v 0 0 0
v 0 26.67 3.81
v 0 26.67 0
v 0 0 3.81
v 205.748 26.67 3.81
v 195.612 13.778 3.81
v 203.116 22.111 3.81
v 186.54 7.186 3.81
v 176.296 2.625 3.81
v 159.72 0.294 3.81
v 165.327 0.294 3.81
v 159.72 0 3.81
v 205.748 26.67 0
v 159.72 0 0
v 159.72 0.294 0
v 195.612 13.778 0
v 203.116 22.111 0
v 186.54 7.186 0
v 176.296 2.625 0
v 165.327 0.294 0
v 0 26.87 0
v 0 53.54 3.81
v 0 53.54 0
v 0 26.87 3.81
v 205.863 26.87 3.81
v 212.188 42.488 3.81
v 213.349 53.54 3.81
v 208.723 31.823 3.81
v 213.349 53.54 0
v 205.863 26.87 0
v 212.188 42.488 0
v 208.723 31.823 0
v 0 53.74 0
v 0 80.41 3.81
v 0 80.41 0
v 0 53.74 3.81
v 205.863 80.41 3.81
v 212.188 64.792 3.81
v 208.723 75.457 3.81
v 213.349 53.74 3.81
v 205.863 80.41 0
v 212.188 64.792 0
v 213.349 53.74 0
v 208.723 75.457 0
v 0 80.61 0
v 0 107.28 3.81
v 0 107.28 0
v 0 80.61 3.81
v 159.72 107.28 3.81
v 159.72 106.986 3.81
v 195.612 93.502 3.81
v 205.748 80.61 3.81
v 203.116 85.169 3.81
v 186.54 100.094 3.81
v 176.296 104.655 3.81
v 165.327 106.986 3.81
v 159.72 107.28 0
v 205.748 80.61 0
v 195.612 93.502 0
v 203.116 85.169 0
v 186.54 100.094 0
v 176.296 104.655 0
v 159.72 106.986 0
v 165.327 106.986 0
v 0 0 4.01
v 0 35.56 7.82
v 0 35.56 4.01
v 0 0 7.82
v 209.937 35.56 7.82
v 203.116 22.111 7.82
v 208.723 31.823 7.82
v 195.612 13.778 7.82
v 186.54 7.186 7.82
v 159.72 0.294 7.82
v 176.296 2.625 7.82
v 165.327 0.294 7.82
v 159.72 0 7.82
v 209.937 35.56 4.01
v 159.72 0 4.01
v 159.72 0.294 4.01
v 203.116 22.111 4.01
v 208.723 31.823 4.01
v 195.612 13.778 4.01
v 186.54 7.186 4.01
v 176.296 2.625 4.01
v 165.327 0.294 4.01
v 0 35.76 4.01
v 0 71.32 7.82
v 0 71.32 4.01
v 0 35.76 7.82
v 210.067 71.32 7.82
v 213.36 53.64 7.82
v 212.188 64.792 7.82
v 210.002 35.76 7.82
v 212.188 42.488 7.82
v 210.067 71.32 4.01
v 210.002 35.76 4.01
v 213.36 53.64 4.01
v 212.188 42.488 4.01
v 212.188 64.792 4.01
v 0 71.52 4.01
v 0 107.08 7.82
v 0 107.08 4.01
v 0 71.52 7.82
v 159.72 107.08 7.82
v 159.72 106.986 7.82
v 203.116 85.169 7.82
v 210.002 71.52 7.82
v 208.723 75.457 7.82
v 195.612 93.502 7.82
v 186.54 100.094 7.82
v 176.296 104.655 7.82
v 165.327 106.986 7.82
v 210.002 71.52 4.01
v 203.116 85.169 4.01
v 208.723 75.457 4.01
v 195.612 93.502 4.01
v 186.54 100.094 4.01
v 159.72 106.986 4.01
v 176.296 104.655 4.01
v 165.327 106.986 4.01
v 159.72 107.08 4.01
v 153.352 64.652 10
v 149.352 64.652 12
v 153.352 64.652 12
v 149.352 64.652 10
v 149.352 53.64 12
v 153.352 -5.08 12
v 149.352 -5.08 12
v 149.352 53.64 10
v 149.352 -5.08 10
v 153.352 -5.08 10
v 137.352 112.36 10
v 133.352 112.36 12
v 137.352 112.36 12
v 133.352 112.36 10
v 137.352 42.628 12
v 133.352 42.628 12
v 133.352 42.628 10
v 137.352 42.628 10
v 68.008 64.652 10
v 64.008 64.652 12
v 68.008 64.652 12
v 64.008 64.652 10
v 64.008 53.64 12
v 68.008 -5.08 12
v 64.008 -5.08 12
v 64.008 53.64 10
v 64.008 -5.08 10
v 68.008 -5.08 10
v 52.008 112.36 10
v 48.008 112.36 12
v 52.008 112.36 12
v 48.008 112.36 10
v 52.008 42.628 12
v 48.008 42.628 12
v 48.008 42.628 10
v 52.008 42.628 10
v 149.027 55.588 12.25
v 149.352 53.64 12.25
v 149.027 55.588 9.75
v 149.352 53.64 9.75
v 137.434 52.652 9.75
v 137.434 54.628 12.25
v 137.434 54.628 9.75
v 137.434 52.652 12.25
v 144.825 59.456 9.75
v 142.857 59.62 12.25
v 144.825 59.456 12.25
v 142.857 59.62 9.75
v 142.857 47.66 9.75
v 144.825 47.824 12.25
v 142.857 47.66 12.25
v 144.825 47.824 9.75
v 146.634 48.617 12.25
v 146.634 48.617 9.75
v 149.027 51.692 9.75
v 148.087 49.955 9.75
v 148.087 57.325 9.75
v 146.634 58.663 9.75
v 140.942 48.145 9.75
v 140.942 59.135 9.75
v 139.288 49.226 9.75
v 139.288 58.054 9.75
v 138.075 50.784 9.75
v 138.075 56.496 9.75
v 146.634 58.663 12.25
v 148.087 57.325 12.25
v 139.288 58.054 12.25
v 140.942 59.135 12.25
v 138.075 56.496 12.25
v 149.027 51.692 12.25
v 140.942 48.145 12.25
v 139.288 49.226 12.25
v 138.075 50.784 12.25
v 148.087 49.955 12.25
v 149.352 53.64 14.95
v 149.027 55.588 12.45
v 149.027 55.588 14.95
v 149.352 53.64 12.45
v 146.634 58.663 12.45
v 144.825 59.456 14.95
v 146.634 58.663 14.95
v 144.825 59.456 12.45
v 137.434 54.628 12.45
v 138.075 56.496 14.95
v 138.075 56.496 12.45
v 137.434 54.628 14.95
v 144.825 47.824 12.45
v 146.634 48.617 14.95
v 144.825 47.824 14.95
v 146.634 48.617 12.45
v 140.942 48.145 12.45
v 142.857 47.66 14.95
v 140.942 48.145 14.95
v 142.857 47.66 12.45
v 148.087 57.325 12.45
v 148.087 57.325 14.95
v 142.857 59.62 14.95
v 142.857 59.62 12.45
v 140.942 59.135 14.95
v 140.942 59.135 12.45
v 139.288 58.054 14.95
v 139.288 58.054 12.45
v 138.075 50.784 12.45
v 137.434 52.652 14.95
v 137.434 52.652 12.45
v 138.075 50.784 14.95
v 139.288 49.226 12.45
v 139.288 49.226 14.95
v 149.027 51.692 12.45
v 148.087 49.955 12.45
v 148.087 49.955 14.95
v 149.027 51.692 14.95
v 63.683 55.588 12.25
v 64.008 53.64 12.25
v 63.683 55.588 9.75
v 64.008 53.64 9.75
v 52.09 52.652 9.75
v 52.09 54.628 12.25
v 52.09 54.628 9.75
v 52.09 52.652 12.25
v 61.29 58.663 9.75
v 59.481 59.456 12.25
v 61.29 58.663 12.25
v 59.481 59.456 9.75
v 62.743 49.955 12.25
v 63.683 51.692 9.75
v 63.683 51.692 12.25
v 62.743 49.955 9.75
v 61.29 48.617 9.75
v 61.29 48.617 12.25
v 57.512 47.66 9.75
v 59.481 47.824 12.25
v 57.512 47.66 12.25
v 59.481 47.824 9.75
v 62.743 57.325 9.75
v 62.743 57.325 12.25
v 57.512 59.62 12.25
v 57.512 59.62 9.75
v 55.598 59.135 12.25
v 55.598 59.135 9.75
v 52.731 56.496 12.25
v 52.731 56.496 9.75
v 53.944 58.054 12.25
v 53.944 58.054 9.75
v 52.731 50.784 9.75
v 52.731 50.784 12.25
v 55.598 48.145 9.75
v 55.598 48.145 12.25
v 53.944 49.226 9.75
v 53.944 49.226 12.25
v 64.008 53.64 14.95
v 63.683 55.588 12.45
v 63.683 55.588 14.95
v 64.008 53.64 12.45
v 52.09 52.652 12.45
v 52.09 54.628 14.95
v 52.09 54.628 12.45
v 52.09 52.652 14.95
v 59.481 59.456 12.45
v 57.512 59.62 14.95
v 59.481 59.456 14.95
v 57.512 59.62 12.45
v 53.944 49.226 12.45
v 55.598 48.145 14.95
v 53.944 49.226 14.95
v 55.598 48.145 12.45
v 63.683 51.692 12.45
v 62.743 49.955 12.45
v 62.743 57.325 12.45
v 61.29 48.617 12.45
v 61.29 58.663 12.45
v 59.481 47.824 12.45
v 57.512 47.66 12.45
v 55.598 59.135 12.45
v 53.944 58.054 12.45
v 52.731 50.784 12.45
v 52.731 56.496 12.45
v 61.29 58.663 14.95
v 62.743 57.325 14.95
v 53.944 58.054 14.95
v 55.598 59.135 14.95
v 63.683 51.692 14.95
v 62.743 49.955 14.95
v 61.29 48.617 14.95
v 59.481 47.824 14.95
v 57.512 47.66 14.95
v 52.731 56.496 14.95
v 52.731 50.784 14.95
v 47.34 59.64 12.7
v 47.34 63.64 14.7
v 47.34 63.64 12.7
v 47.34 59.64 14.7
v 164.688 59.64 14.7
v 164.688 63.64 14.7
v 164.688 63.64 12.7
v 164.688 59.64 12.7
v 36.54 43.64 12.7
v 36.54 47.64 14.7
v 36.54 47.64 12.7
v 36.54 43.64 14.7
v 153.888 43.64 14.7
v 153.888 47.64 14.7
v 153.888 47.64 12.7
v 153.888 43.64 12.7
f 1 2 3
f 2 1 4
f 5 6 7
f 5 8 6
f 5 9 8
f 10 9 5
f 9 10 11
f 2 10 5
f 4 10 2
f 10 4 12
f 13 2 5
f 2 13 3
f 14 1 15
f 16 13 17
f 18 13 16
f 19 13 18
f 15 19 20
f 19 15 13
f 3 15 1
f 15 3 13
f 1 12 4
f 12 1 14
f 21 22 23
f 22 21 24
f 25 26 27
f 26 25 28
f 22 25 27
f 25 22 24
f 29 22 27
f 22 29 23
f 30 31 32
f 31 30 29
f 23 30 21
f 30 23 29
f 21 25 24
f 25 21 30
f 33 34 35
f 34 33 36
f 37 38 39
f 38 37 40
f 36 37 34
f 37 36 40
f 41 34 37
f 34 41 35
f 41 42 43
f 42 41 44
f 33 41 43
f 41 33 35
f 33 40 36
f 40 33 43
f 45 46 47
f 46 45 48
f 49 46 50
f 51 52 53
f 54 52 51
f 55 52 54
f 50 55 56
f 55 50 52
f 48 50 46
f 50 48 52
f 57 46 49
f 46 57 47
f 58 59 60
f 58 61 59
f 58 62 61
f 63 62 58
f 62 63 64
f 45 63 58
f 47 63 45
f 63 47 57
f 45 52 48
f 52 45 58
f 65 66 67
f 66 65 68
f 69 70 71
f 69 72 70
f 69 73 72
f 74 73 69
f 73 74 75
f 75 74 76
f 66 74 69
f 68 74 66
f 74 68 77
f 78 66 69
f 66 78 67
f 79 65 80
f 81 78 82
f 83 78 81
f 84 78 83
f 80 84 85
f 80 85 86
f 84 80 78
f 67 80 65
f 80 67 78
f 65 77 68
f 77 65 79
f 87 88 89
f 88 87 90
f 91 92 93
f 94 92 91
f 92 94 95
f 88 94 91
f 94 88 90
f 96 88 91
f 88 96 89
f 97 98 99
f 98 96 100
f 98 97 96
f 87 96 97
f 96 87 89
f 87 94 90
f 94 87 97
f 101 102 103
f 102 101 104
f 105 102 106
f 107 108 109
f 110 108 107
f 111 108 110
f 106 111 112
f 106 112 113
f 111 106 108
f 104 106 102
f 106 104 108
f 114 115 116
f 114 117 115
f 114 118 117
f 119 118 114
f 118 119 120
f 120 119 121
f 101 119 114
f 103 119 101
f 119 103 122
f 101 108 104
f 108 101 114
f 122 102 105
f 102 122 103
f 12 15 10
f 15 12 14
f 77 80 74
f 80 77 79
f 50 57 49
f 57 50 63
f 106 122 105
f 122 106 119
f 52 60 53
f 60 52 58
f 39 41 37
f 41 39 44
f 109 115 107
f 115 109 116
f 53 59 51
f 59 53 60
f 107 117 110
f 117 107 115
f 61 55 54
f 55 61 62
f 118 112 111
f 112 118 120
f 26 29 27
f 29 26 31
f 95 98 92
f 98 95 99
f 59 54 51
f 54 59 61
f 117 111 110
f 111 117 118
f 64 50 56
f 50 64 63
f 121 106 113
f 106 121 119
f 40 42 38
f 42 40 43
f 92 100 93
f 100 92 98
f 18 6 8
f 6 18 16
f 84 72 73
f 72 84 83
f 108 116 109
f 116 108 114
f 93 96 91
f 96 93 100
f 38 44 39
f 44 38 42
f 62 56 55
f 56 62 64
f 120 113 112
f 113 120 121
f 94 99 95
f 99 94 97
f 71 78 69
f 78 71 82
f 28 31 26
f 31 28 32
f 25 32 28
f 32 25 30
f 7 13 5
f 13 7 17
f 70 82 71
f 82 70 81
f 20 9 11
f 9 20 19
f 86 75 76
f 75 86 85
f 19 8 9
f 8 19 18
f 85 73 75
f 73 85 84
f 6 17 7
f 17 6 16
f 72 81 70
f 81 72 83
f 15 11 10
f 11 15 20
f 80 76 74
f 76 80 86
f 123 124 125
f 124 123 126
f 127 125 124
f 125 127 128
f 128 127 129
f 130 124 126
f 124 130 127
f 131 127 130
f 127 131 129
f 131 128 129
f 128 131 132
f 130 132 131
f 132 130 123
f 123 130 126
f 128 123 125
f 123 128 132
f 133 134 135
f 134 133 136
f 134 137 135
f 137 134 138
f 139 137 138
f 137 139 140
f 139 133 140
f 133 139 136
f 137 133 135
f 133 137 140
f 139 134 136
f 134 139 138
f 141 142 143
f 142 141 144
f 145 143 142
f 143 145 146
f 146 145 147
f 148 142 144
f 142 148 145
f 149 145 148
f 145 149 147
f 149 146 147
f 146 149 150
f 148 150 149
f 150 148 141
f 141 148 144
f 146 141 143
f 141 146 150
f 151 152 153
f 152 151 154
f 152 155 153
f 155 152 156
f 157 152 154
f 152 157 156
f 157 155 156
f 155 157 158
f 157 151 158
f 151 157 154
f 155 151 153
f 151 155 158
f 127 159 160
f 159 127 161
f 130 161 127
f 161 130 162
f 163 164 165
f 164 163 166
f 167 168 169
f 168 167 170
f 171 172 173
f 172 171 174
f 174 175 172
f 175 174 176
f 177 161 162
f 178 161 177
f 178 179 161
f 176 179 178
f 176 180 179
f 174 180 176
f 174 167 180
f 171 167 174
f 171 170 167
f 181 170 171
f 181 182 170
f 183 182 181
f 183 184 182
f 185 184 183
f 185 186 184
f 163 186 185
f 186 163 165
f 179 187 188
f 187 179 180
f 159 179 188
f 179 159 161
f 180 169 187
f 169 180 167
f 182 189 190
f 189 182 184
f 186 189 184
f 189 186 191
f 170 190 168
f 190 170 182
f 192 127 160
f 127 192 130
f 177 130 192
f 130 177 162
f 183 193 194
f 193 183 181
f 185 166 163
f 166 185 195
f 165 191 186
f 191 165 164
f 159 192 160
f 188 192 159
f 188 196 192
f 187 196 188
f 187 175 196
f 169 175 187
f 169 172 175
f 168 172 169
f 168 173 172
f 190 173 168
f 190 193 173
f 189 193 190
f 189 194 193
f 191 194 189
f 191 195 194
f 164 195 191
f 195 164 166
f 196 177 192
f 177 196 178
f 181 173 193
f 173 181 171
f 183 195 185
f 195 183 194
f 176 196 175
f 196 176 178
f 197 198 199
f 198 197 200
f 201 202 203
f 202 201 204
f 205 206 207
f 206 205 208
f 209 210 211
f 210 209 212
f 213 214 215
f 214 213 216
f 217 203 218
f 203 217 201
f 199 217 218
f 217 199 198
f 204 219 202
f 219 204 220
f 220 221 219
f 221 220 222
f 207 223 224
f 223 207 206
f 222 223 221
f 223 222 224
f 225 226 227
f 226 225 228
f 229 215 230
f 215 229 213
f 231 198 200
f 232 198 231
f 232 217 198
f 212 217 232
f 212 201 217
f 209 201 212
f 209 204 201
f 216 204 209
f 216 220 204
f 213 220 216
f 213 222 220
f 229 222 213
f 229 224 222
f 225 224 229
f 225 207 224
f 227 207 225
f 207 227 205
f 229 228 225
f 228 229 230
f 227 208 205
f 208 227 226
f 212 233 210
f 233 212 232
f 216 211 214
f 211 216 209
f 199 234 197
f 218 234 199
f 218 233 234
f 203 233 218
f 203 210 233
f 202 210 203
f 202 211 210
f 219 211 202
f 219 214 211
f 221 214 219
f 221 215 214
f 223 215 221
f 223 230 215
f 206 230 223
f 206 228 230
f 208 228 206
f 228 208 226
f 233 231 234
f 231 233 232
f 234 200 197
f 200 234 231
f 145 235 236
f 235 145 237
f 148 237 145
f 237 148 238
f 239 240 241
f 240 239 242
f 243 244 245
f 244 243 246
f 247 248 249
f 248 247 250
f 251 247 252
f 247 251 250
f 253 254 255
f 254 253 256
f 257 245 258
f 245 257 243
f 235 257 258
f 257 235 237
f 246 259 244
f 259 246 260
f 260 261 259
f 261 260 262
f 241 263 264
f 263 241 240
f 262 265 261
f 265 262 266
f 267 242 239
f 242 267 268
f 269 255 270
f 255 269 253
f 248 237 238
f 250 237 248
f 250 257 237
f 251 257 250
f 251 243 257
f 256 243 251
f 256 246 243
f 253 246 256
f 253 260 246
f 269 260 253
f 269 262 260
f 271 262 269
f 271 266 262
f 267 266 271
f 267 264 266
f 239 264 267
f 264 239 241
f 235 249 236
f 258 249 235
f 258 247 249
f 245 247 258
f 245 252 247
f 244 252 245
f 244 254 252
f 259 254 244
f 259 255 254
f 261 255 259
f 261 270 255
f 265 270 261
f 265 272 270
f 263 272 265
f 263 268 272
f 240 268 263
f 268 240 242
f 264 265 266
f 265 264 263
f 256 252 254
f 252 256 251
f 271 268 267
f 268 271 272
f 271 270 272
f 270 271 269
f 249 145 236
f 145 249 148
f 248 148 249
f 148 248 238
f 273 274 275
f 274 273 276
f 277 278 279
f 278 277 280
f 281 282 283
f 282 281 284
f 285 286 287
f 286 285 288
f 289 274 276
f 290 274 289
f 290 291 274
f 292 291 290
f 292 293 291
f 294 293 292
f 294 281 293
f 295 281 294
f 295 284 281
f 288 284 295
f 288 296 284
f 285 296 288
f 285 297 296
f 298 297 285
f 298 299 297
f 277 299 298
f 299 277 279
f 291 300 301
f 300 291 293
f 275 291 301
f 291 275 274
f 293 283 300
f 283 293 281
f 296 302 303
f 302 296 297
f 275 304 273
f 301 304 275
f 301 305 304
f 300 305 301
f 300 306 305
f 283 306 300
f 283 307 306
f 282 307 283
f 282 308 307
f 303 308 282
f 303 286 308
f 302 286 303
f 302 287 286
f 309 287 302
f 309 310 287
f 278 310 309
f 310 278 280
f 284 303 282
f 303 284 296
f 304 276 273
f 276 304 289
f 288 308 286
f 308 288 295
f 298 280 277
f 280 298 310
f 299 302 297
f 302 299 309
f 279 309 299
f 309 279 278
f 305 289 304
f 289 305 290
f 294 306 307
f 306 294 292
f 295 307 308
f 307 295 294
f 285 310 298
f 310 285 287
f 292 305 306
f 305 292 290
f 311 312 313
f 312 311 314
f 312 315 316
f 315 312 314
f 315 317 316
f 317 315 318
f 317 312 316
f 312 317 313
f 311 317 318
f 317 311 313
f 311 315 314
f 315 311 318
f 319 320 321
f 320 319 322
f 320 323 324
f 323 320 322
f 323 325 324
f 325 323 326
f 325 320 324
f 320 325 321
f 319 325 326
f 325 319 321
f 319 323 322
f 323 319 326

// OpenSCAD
// file: common/board.scad
// board.scad

BOARD_DEFAULT_LENGTH = 600;
BOARD_DEFAULT_WIDTH = 120;
BOARD_DEFAULT_THICKNESS = 120;

function board_get_default_size()
    = [BOARD_DEFAULT_LENGTH, BOARD_DEFAULT_WIDTH, BOARD_DEFAULT_THICKNESS];

module board(size = board_get_default_size(), center = false)
{
    // size[0] is always with the grain
    // size[1] is against the grain
    // size[2] is the board thickness
    cube(size = size, center = center);
}
// main file
// door.scad
// units: centimeter
// TODO:
// - separate into files/parts

use <common/board.scad>

// door size
// 7' x 3.5' x ? ft
// 84" x 42" x ? in
// 213.36 x 106.68 x ? cm

// 4 x 10.5" == 42"
// 4 x 26.67 == 106.68 cm

// 3 x 14" == 42"
// 3 x 35.56 == 106.68 cm

DOOR_HEIGHT = 213.36;
DOOR_WIDTH = 106.68;
LOCK_ENGAGED_DIST = 5.08;
VISUAL_SEP_DIST = 0.2;
BAR_THICKNESS = 1.27;

HORIZ_LOCK_GEAR_RADIUS = 6;

OUTSIDE_BOARD_COUNT = 4;
OUTSIDE_BOARD_LENGTH = DOOR_HEIGHT;
OUTSIDE_BOARD_WIDTH = 26.67;
OUTSIDE_BOARD_THICKNESS = 3.81;

INSIDE_BOARD_COUNT = 3;
INSIDE_BOARD_LENGTH = DOOR_HEIGHT;
INSIDE_BOARD_WIDTH = 35.56;
INSIDE_BOARD_THICKNESS = 3.81;

TOTAL_LENGTH = DOOR_HEIGHT;
TOTAL_WIDTH =
        DOOR_WIDTH
        + (3 * VISUAL_SEP_DIST);
TOTAL_BOARD_THICKNESS =
        OUTSIDE_BOARD_THICKNESS
        + VISUAL_SEP_DIST
        + INSIDE_BOARD_THICKNESS;

HORIZ_LOCK_BAR_LENGTH = TOTAL_WIDTH * 0.65;
HORIZ_LOCK_BAR_WIDTH = 4;
HORIZ_LOCK_BAR_THICKNESS = 2;

VERT_LOCK_BAR_LENGTH = TOTAL_LENGTH * 0.55;
VERT_LOCK_BAR_WIDTH = 4;
VERT_LOCK_BAR_THICKNESS = 2;

module outside_board()
{
    board_size = [
            OUTSIDE_BOARD_LENGTH,
            OUTSIDE_BOARD_WIDTH,
            OUTSIDE_BOARD_THICKNESS];

    board(board_size);
}

module inside_board()
{
    board_size = [
            INSIDE_BOARD_LENGTH,
            INSIDE_BOARD_WIDTH,
            INSIDE_BOARD_THICKNESS];

    board(board_size);
}

module outside_board_assembly()
{
    for(b = [0 : OUTSIDE_BOARD_COUNT - 1])
    {
        w = OUTSIDE_BOARD_WIDTH + VISUAL_SEP_DIST;
        offset_y = b * w;

        translate([0, offset_y, 0])
            outside_board();
    }
}

module inside_board_assembly()
{
    z0 =
            INSIDE_BOARD_THICKNESS
            - BAR_THICKNESS;

    for(b = [0 : INSIDE_BOARD_COUNT - 1])
    {
        w = INSIDE_BOARD_WIDTH + VISUAL_SEP_DIST;
        offset_y = b * w;

        translate([0, offset_y, 0])
            inside_board();
    }
}

module square_door()
{
    color("SaddleBrown")
        outside_board_assembly();

    z0 = OUTSIDE_BOARD_THICKNESS + VISUAL_SEP_DIST;

    color("Sienna")
        translate([0, 0, z0])
            inside_board_assembly();
}

module test_template(r)
{
    template_size = [
            TOTAL_LENGTH / 3,
            TOTAL_WIDTH + (TOTAL_WIDTH / 4),
            4 * TOTAL_BOARD_THICKNESS];

    template_offset = [
            0,
            -template_size[1] / 2,
            -template_size[2] / 2];

    difference()
    {
        translate(template_offset)
            cube(template_size);

        cylinder(
                h = template_size[2],
                r1 = r,
                r2 = r,
                center = true);
    }
}

module door()
{
    r = TOTAL_WIDTH / 2;

    offset_t = [
            TOTAL_LENGTH - r,
            TOTAL_WIDTH / 2,
            0];

    difference()
    {
        square_door();

        color("SaddleBrown")
            translate(offset_t)
                test_template(r);
    }
}

module horiz_bar()
{
    bar_size = [
            HORIZ_LOCK_BAR_LENGTH,
            HORIZ_LOCK_BAR_WIDTH,
            HORIZ_LOCK_BAR_THICKNESS];

    translate([bar_size[1], 0, 0])
        rotate([0, 0, 90])
            cube(bar_size);
}

module vert_bar()
{
    bar_size = [
            VERT_LOCK_BAR_LENGTH,
            VERT_LOCK_BAR_WIDTH,
            VERT_LOCK_BAR_THICKNESS];

            cube(bar_size);
}

module horiz_lock_bars()
{
    offset_b0 = [
            TOTAL_LENGTH * 0.70,
            -LOCK_ENGAGED_DIST,
            0];

    offset_b1 = [
            (TOTAL_LENGTH * 0.70)
                    - (2 * HORIZ_LOCK_GEAR_RADIUS)
                    - HORIZ_LOCK_BAR_WIDTH,
            TOTAL_WIDTH
                    - HORIZ_LOCK_BAR_LENGTH
                    + LOCK_ENGAGED_DIST,
            0];
    
    offset_b2 = [
            (TOTAL_LENGTH * 0.30),
            -LOCK_ENGAGED_DIST,
            0];
            
    offset_b3 = [
            (TOTAL_LENGTH * 0.30)
                    - (2 * HORIZ_LOCK_GEAR_RADIUS)
                    - HORIZ_LOCK_BAR_WIDTH,
            TOTAL_WIDTH
                    - HORIZ_LOCK_BAR_LENGTH
                    + LOCK_ENGAGED_DIST,
            0];

    translate(offset_b0)
        horiz_bar(size_ba);

    translate(offset_b1)
        horiz_bar(size_ba);
        
    translate(offset_b2)
        horiz_bar(size_ba);
        
    translate(offset_b3)
        horiz_bar(size_ba);
}

module vert_lock_bars()
{
    offset_b0 = [
            (TOTAL_LENGTH / 4)
                    - HORIZ_LOCK_GEAR_RADIUS,
            (TOTAL_WIDTH / 2)
                    + HORIZ_LOCK_GEAR_RADIUS,
            HORIZ_LOCK_BAR_THICKNESS
                    + VISUAL_SEP_DIST
                    + (HORIZ_LOCK_BAR_THICKNESS / 4)];
    
    offset_b1 = [
            (TOTAL_LENGTH / 4)
                    - (2.8 * HORIZ_LOCK_GEAR_RADIUS),
            (TOTAL_WIDTH / 2)
                    - HORIZ_LOCK_GEAR_RADIUS
                    - VERT_LOCK_BAR_WIDTH,
            HORIZ_LOCK_BAR_THICKNESS
                    + VISUAL_SEP_DIST
                    + (HORIZ_LOCK_BAR_THICKNESS / 4)];
    
    translate(offset_b0)
        vert_bar();
    
    translate(offset_b1)
        vert_bar();
}

module horiz_lock_gears()
{
    offset_g01a = [
            (TOTAL_LENGTH * 0.70)
                    - HORIZ_LOCK_GEAR_RADIUS,
            TOTAL_WIDTH / 2,
            -HORIZ_LOCK_BAR_THICKNESS / 8];
    
    offset_g01b = [
            (TOTAL_LENGTH * 0.70)
                    - HORIZ_LOCK_GEAR_RADIUS,
            TOTAL_WIDTH / 2,
            (-HORIZ_LOCK_BAR_THICKNESS / 8)
                    + (HORIZ_LOCK_BAR_THICKNESS / 4)
                    + VISUAL_SEP_DIST
                    + HORIZ_LOCK_BAR_THICKNESS];
            
    offset_g23a = [
            (TOTAL_LENGTH * 0.30)
                    - HORIZ_LOCK_GEAR_RADIUS,
            TOTAL_WIDTH / 2,
            -HORIZ_LOCK_BAR_THICKNESS / 8];
    
    offset_g23b = [
            (TOTAL_LENGTH * 0.30)
                    - HORIZ_LOCK_GEAR_RADIUS,
            TOTAL_WIDTH / 2,
            (-HORIZ_LOCK_BAR_THICKNESS / 8)
                    + (HORIZ_LOCK_BAR_THICKNESS / 4)
                    + VISUAL_SEP_DIST
                    + HORIZ_LOCK_BAR_THICKNESS];

    translate(offset_g01a)
        cylinder(
                h = HORIZ_LOCK_BAR_THICKNESS
                        + (HORIZ_LOCK_BAR_THICKNESS / 4),
                r1 = HORIZ_LOCK_GEAR_RADIUS,
                r2 = HORIZ_LOCK_GEAR_RADIUS,
                center = false);
    
    translate(offset_g01b)
        cylinder(
                h = HORIZ_LOCK_BAR_THICKNESS
                        + (HORIZ_LOCK_BAR_THICKNESS / 4),
                r1 = HORIZ_LOCK_GEAR_RADIUS,
                r2 = HORIZ_LOCK_GEAR_RADIUS,
                center = false);
                
    translate(offset_g23a)
        cylinder(
                h = HORIZ_LOCK_BAR_THICKNESS
                        + (HORIZ_LOCK_BAR_THICKNESS / 4),
                r1 = HORIZ_LOCK_GEAR_RADIUS,
                r2 = HORIZ_LOCK_GEAR_RADIUS,
                center = false);
                
    translate(offset_g23b)
        cylinder(
                h = HORIZ_LOCK_BAR_THICKNESS
                        + (HORIZ_LOCK_BAR_THICKNESS / 4),
                r1 = HORIZ_LOCK_GEAR_RADIUS,
                r2 = HORIZ_LOCK_GEAR_RADIUS,
                center = false);
}

module lock_assembly()
{
    color("Gray")
        horiz_lock_bars();

    color("DimGray")
        horiz_lock_gears();
    
    color("Gray")
        vert_lock_bars();
}

door();

translate([0, 0, 10])
    lock_assembly();
